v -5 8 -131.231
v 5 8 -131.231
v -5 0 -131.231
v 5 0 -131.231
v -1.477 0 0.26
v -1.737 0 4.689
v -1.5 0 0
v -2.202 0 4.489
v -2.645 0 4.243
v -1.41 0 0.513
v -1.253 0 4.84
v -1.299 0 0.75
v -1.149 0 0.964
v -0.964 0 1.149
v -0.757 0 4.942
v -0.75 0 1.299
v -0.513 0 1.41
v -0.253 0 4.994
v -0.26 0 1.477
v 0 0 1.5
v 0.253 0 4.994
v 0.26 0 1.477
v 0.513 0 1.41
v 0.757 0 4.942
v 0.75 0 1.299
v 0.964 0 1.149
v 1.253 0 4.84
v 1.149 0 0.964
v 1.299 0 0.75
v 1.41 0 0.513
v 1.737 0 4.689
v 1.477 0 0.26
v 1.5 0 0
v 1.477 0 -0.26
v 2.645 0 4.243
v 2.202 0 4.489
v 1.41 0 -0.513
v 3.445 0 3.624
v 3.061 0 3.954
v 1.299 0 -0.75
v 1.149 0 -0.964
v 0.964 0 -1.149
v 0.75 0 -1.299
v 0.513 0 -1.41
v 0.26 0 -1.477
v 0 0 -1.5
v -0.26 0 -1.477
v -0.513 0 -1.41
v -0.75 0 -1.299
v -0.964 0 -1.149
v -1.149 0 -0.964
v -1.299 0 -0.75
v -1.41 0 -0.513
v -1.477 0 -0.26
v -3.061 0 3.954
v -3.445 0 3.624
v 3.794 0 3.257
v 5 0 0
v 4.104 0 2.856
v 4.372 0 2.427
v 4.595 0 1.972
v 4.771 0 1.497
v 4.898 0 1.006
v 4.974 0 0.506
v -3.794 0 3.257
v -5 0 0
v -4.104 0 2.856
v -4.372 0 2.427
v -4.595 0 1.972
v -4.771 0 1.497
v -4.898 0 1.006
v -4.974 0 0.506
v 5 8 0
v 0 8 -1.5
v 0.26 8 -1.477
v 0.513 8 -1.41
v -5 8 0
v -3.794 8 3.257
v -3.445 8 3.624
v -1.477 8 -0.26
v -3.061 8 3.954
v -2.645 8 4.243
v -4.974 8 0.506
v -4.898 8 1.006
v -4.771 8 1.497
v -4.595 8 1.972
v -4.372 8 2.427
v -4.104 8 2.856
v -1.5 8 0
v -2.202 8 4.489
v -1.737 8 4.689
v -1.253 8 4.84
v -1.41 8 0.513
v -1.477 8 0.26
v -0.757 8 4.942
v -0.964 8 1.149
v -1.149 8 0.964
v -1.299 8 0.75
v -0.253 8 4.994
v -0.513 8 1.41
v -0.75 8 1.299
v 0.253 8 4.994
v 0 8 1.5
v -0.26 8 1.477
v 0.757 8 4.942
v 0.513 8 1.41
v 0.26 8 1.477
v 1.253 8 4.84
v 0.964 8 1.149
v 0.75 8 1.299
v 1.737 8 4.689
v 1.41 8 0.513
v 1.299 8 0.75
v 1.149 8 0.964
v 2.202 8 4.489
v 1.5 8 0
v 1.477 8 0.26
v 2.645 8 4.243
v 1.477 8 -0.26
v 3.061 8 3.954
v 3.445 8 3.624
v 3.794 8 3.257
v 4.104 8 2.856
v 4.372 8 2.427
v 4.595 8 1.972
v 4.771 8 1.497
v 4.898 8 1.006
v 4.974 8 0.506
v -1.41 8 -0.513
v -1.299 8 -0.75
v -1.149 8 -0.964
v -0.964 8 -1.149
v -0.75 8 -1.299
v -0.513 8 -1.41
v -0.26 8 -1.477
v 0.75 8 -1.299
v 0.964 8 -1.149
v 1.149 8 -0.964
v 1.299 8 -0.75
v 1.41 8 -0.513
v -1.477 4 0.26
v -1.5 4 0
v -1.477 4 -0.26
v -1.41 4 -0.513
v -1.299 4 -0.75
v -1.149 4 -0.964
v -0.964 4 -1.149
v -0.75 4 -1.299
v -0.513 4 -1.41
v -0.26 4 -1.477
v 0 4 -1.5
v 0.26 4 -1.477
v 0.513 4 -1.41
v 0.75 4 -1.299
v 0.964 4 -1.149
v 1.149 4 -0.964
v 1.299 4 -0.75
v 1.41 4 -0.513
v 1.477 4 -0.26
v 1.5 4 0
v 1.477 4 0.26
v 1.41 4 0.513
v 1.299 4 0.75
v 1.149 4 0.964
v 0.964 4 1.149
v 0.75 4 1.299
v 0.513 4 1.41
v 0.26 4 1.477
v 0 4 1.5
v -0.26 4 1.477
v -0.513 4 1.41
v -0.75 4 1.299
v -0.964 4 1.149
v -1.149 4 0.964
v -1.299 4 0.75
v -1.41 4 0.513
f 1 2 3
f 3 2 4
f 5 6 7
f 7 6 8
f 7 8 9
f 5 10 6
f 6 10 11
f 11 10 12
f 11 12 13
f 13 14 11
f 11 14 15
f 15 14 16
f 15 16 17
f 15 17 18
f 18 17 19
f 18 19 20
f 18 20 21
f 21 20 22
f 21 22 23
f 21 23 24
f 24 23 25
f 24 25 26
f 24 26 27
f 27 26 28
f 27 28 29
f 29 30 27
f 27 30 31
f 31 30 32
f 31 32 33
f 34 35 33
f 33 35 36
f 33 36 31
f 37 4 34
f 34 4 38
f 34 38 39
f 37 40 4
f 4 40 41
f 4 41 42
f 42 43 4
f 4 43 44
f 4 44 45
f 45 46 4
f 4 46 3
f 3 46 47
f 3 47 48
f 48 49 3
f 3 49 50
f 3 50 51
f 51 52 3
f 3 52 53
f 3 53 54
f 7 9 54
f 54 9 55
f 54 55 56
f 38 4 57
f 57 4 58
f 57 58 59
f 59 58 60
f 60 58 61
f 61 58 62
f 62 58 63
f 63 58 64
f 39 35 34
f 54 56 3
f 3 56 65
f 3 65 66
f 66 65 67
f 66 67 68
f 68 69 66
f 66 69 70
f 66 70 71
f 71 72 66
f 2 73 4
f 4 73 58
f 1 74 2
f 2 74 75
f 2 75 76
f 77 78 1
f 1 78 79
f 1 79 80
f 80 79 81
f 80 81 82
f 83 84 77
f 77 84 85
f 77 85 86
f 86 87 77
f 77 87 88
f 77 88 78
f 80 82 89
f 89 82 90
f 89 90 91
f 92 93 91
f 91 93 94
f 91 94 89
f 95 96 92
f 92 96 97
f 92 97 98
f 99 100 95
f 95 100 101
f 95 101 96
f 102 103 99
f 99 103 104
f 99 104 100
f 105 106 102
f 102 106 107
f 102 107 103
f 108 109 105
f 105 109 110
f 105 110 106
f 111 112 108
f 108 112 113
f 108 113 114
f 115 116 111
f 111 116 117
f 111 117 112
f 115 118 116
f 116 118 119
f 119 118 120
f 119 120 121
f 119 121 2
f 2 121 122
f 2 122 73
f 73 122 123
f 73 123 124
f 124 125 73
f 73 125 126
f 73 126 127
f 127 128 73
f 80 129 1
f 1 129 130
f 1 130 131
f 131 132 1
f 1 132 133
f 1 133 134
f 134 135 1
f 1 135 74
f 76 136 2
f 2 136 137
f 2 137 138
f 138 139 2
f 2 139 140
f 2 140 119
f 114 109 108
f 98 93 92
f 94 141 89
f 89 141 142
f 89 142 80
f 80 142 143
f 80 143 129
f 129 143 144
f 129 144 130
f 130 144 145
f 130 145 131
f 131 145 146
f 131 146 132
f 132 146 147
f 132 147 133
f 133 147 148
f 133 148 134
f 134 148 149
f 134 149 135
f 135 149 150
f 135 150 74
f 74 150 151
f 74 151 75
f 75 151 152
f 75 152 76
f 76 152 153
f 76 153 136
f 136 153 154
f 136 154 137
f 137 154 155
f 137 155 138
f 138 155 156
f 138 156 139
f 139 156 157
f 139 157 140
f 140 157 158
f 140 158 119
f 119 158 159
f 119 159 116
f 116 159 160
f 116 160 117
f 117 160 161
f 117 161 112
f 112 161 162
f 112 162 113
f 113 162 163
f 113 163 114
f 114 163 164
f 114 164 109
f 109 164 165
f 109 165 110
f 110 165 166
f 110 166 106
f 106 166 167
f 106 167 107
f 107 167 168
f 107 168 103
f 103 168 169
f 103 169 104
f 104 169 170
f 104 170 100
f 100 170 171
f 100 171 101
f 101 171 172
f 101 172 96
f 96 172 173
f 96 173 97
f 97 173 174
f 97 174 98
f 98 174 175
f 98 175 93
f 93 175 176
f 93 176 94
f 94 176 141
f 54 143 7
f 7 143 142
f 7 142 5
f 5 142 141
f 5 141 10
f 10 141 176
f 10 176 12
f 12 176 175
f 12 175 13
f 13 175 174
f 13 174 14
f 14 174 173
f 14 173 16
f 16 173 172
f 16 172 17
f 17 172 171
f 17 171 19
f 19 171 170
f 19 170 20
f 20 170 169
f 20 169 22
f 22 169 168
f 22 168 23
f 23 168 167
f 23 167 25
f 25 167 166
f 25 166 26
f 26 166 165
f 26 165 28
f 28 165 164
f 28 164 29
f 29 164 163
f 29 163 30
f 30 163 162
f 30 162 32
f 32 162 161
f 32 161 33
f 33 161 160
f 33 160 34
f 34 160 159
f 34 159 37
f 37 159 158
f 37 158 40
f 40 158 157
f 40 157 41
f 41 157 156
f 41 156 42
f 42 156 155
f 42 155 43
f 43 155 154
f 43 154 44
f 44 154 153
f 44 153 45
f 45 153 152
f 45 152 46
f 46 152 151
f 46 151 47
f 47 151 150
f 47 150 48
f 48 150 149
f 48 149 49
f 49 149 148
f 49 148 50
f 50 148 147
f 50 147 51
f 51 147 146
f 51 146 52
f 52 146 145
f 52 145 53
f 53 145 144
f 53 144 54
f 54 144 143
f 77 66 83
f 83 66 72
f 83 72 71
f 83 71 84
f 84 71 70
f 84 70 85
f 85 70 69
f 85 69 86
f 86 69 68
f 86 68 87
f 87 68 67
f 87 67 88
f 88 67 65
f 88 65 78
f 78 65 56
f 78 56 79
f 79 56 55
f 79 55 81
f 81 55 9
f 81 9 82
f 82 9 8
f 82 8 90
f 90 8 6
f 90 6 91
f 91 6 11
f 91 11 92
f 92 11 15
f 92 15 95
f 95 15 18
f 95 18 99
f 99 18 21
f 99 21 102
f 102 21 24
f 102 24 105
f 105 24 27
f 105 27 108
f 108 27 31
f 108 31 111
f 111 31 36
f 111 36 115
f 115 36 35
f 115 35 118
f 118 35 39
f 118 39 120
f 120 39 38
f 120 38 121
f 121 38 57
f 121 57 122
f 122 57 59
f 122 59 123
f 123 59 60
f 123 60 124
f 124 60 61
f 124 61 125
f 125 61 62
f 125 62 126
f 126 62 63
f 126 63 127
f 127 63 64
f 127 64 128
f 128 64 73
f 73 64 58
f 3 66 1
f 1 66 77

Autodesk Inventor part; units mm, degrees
ref_plane "YZ Plane" through (0, 0, 0) normal (1, 0, 0) x (0, 1, 0)
ref_plane "XZ Plane" through (0, 0, 0) normal (0, 1, 0) x (-1, 0, 0)
ref_plane "XY Plane" through (0, 0, 0) normal (0, 0, 1) x (1, 0, 0)
sketch "Sketch1" plane through (0, 0, 0) normal (0, 1, 0) x (-1, 0, 0)
  line L0 (0, 0) -> (0, -244.795) construction
  line L1 (-5, 0) -> (-5, -244.795)
  line L2 (5, -244.795) -> (5, 0)
  arc A0 (5, 0) -> (-5, 0) centre (0, 0) ccw
  arc A1 (-5, -244.795) -> (5, -244.795) centre (0, -244.795) ccw
  circle A2 centre (0, 0) radius 1.5
  circle A3 centre (0, -244.795) radius 1.5
  point P0 (0, -122.3975)
  dimension "d0" = 244.795
  dimension "d1" = 10
  dimension "d2" = 3
  dimension "d3" = 3
extrude "Extrusion1" add sketch "Sketch1" along normal blind 8
sketch "Sketch2" plane through (0, 8, 0) normal (0, 1, 0) x (1, 0, 0)
  arc A0 (5, 244.795) -> (-5, 244.795) centre (0, 244.795) ccw projected
  line L0 (-5, 244.795) -> (-5, 0) projected
  arc A1 (-5, 0) -> (5, 0) centre (0, 0) ccw projected
  line L1 (5, 0) -> (5, 244.795) projected
  circle A2 centre (0, 244.795) radius 1.5 projected
  circle A3 centre (0, 0) radius 1.5 projected
  circle A4 centre (0, 244.795) radius 5
  point P0 (-5, 244.795)
  dimension "d12" = 10
extrude "Extrusion2" add sketch "Sketch2" along normal blind 12 contours A4 A0
sketch "Sketch3" plane through (0, 0, 0) normal (0, -1, 0) x (1, 0, 0)
  arc A0 (-5, -244.795) -> (5, -244.795) centre (0, -244.795) ccw projected
  line L0 (5, 0) -> (5, -244.795) projected
  arc A1 (5, 0) -> (-5, 0) centre (0, 0) ccw projected
  line L1 (-5, -244.795) -> (-5, 0) projected
  circle A2 centre (0, -244.795) radius 1.5 projected
  circle A3 centre (0, 0) radius 1.5 projected
sketch "Sketch4" plane through (0, 20, -244.795) normal (0, 1, 0) x (1, 0, 0)
  circle A0 centre (0, 0) radius 10
  point P0 (0, -244.795)
  dimension "d15" = 20
extrude "Extrusion3" add sketch "Sketch4" against normal blind 3
sketch "Sketch5" plane through (0, 0, 0) normal (0, -1, 0) x (1, 0, 0)
  line L0 (23.0807, 11.4027) -> (-31.8332, 11.4027)
  line L1 (-31.8332, 11.4027) -> (-31.8332, -131.2308)
  line L2 (-31.8332, -131.2308) -> (23.0807, -131.2308)
  line L3 (23.0807, -131.2308) -> (23.0807, 11.4027)
  line L4 (55.5298, 55.2625) -> (-102.4368, 55.2625)
  line L5 (-102.4368, 55.2625) -> (-102.4368, -369.4288)
  line L6 (-102.4368, -369.4288) -> (55.5298, -369.4288)
  line L7 (55.5298, -369.4288) -> (55.5298, 55.2625)
  point P0 (0, 0)
extrude "Extrusion4" cut sketch "Sketch5" against normal blind 100
properties part number "Part_12_p1"
